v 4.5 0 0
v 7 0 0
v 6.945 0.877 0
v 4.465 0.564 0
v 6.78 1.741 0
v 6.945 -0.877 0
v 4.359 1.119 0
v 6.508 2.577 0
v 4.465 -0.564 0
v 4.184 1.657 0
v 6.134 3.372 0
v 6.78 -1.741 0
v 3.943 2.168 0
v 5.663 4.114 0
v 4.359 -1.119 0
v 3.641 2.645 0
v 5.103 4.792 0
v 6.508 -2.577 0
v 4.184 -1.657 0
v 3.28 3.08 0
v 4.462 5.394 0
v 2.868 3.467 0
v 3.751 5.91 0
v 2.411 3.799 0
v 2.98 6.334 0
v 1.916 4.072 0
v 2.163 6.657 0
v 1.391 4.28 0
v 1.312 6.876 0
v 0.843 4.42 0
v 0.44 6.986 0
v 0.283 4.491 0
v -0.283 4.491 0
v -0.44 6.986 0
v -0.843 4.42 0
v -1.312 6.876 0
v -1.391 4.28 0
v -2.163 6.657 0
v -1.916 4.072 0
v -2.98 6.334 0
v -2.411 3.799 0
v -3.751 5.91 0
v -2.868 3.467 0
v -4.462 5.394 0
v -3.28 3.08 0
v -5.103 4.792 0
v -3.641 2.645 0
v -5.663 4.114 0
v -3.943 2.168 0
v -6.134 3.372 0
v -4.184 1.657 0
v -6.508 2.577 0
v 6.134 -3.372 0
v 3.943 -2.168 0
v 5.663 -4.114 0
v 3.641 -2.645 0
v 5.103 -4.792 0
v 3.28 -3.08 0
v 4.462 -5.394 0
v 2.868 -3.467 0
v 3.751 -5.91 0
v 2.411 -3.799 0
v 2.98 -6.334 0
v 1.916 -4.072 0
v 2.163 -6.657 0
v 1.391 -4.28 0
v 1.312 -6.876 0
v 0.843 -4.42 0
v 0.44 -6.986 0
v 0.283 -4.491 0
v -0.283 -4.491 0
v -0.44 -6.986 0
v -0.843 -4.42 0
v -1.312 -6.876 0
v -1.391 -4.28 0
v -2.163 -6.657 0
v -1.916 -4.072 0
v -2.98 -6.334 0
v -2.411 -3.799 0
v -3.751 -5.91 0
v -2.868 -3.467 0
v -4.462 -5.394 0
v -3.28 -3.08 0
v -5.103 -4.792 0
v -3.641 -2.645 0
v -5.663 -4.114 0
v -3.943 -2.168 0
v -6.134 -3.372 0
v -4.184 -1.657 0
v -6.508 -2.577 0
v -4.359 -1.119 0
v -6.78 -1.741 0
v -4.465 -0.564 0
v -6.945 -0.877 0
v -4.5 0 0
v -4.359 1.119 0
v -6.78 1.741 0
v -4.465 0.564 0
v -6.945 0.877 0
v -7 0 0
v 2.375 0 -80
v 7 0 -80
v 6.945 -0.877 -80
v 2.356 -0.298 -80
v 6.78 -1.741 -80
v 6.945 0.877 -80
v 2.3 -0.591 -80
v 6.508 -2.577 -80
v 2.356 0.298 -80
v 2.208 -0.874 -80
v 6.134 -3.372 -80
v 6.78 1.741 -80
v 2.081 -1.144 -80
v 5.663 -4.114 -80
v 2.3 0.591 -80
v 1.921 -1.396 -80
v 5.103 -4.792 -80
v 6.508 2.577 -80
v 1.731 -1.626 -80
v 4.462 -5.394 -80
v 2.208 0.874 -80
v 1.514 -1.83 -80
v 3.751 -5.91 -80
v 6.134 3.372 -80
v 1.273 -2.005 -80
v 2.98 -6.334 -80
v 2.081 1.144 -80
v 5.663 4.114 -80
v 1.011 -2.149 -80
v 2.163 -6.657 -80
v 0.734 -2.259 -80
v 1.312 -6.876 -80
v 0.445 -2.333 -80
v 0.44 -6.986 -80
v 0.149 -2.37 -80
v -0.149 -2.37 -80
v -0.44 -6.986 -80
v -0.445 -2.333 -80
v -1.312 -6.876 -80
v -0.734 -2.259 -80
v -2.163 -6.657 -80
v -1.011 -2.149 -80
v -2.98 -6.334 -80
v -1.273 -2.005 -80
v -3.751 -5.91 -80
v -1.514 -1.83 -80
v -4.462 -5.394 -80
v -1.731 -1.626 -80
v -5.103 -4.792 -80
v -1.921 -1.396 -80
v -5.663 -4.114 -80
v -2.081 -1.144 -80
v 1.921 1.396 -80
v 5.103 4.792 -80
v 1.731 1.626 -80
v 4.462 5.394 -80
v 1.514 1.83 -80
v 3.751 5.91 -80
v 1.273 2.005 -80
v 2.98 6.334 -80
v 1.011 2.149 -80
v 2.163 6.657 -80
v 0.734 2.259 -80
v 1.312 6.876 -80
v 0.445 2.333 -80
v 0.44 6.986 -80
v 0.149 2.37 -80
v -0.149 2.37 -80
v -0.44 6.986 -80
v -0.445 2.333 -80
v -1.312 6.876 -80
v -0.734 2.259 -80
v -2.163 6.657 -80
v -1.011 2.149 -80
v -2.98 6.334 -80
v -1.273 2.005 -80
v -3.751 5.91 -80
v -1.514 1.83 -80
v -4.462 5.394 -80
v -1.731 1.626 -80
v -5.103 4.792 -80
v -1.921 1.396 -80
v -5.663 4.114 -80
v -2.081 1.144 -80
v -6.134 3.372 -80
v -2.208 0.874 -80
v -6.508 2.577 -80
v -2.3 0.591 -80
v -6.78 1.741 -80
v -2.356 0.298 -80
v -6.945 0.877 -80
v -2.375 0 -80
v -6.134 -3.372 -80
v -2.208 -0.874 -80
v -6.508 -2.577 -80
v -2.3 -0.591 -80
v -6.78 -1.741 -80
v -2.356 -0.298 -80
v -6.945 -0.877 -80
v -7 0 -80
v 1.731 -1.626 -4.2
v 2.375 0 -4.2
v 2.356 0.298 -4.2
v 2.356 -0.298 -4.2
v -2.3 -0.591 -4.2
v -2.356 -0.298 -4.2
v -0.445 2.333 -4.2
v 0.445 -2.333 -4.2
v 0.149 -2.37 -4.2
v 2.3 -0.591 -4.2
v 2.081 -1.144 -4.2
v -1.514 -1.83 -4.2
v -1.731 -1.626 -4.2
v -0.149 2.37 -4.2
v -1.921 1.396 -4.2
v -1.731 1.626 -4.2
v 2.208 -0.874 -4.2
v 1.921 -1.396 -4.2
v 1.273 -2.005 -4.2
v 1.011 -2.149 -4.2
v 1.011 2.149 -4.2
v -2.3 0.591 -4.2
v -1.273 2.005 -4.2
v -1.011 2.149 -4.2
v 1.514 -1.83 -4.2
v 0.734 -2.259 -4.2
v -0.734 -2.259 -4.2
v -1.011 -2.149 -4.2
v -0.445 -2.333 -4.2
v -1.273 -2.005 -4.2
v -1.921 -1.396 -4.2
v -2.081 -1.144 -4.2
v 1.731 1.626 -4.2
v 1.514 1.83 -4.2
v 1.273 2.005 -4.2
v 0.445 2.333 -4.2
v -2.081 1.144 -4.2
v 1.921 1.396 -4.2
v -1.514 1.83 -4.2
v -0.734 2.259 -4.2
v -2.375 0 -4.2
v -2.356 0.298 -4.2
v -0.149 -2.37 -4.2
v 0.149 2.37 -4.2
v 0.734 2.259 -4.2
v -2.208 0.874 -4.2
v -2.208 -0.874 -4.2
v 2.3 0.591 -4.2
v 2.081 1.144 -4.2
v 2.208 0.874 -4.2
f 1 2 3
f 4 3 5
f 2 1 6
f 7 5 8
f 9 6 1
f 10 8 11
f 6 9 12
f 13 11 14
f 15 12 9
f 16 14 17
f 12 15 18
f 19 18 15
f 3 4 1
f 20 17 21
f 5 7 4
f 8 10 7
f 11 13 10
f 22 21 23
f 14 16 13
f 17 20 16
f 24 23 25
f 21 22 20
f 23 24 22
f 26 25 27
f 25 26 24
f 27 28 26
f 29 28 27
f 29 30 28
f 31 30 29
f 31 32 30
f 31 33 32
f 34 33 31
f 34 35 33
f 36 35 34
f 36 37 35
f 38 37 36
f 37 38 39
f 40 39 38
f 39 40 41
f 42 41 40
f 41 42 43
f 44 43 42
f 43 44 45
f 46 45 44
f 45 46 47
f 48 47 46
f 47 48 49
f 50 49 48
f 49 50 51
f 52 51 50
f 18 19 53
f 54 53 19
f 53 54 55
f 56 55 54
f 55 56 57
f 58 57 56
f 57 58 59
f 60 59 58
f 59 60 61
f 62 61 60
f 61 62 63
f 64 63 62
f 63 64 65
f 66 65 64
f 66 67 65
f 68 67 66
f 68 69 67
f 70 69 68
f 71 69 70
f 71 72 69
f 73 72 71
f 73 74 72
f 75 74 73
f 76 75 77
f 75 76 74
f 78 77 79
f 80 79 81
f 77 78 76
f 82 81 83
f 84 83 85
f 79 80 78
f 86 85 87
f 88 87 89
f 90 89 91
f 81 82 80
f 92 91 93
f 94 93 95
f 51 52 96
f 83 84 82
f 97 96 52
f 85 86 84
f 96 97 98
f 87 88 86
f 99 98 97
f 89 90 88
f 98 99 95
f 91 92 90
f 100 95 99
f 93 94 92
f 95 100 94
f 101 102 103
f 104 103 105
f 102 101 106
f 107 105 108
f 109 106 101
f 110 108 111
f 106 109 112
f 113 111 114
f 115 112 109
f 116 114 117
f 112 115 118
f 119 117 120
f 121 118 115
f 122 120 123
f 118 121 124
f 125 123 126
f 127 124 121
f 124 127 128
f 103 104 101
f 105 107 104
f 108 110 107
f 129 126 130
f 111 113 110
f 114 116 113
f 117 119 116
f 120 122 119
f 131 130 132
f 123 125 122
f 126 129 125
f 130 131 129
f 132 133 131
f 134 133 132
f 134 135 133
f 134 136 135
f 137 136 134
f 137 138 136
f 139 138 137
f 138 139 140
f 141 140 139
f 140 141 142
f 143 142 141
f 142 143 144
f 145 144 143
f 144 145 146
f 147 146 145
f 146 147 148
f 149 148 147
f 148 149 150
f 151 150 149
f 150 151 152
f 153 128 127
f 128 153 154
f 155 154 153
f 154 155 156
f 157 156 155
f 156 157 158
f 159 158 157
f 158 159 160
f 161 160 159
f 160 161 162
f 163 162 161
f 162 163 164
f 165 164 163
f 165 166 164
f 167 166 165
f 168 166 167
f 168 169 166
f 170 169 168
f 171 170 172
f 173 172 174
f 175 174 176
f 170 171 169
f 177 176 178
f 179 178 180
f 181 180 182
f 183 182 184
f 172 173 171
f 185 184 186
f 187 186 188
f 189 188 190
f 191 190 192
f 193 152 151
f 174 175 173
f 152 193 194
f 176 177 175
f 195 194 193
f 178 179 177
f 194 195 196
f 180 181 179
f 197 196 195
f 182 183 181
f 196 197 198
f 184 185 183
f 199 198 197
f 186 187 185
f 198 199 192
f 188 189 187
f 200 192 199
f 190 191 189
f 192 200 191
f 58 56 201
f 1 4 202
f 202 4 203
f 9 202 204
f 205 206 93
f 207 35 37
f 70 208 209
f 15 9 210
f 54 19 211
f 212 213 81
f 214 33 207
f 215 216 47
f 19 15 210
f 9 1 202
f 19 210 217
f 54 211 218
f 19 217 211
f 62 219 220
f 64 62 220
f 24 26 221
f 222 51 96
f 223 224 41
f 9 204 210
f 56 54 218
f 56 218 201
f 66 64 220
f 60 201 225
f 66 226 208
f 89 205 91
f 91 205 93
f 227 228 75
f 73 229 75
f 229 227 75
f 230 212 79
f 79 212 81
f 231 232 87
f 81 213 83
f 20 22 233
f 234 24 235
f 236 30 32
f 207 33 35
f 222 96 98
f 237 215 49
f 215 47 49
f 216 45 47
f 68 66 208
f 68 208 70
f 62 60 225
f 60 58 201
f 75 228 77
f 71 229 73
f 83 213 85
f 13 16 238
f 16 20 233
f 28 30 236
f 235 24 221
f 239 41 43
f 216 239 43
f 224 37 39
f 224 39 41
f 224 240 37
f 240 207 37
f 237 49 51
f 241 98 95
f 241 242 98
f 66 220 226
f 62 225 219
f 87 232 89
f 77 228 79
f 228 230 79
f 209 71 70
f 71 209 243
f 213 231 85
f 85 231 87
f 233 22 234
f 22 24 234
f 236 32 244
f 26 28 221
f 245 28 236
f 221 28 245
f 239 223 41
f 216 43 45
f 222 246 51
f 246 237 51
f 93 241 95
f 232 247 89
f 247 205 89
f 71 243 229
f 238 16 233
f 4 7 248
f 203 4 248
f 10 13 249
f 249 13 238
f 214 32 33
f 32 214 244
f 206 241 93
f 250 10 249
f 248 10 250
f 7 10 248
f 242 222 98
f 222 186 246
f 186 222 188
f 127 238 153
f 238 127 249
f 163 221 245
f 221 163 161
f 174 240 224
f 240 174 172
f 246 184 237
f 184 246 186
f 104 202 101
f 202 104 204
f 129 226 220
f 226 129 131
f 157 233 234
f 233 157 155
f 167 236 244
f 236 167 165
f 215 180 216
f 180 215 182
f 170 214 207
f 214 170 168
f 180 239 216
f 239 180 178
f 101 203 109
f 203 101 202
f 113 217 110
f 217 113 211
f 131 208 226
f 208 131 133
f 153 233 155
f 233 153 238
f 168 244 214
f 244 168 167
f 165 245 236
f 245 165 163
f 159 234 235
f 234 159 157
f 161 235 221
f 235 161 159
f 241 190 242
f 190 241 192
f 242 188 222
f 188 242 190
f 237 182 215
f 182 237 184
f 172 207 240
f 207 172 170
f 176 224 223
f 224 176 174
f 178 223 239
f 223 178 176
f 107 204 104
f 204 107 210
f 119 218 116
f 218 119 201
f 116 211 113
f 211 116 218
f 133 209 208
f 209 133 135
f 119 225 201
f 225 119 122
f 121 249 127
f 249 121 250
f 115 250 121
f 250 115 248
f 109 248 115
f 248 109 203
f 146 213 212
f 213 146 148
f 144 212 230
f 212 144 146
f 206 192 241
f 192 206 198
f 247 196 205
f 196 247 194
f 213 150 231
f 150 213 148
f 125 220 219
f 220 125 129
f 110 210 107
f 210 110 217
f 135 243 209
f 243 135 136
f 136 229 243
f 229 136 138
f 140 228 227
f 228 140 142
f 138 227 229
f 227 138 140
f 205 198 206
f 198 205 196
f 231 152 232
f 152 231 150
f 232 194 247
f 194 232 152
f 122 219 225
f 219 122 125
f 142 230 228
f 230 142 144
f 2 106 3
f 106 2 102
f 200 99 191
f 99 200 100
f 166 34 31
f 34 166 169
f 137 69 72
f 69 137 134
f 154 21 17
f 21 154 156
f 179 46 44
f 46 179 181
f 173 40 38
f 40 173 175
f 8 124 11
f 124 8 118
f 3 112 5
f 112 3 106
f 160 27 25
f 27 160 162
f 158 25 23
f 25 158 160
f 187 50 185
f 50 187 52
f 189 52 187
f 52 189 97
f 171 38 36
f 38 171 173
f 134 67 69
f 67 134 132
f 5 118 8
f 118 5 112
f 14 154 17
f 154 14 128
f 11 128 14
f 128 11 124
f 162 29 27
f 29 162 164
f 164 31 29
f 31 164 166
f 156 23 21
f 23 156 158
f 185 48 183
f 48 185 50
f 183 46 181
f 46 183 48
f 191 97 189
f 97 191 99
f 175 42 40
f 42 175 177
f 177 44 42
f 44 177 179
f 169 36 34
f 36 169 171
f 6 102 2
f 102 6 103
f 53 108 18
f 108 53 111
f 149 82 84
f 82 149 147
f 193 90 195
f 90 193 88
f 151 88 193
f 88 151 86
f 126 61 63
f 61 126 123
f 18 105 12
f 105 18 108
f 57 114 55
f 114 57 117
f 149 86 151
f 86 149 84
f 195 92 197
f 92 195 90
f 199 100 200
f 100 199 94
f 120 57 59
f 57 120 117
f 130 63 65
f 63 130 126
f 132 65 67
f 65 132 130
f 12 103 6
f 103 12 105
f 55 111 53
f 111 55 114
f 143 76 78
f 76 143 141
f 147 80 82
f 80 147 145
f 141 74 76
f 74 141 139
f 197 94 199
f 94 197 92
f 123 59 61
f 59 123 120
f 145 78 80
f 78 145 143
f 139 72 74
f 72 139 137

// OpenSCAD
$fn = 50;


difference() {
	union() {
		translate(v = [0, 0, -80.0000000000]) {
			cylinder(h = 80, r = 7.0000000000);
		}
	}
	union() {
		translate(v = [0, 0, 0]) {
			rotate(a = [0, 0, 0]) {
				difference() {
					union() {
						#translate(v = [0, 0, -80.0000000000]) {
							cylinder(h = 80, r = 2.2500000000);
						}
						#translate(v = [0, 0, -4.2000000000]) {
							cylinder(h = 4.2000000000, r1 = 2.3750000000, r2 = 4.5000000000);
						}
						#translate(v = [0, 0, -80.0000000000]) {
							cylinder(h = 80, r = 2.3750000000);
						}
						#translate(v = [0, 0, -80.0000000000]) {
							cylinder(h = 80, r = 2.2500000000);
						}
					}
					union();
				}
			}
		}
	}
}
